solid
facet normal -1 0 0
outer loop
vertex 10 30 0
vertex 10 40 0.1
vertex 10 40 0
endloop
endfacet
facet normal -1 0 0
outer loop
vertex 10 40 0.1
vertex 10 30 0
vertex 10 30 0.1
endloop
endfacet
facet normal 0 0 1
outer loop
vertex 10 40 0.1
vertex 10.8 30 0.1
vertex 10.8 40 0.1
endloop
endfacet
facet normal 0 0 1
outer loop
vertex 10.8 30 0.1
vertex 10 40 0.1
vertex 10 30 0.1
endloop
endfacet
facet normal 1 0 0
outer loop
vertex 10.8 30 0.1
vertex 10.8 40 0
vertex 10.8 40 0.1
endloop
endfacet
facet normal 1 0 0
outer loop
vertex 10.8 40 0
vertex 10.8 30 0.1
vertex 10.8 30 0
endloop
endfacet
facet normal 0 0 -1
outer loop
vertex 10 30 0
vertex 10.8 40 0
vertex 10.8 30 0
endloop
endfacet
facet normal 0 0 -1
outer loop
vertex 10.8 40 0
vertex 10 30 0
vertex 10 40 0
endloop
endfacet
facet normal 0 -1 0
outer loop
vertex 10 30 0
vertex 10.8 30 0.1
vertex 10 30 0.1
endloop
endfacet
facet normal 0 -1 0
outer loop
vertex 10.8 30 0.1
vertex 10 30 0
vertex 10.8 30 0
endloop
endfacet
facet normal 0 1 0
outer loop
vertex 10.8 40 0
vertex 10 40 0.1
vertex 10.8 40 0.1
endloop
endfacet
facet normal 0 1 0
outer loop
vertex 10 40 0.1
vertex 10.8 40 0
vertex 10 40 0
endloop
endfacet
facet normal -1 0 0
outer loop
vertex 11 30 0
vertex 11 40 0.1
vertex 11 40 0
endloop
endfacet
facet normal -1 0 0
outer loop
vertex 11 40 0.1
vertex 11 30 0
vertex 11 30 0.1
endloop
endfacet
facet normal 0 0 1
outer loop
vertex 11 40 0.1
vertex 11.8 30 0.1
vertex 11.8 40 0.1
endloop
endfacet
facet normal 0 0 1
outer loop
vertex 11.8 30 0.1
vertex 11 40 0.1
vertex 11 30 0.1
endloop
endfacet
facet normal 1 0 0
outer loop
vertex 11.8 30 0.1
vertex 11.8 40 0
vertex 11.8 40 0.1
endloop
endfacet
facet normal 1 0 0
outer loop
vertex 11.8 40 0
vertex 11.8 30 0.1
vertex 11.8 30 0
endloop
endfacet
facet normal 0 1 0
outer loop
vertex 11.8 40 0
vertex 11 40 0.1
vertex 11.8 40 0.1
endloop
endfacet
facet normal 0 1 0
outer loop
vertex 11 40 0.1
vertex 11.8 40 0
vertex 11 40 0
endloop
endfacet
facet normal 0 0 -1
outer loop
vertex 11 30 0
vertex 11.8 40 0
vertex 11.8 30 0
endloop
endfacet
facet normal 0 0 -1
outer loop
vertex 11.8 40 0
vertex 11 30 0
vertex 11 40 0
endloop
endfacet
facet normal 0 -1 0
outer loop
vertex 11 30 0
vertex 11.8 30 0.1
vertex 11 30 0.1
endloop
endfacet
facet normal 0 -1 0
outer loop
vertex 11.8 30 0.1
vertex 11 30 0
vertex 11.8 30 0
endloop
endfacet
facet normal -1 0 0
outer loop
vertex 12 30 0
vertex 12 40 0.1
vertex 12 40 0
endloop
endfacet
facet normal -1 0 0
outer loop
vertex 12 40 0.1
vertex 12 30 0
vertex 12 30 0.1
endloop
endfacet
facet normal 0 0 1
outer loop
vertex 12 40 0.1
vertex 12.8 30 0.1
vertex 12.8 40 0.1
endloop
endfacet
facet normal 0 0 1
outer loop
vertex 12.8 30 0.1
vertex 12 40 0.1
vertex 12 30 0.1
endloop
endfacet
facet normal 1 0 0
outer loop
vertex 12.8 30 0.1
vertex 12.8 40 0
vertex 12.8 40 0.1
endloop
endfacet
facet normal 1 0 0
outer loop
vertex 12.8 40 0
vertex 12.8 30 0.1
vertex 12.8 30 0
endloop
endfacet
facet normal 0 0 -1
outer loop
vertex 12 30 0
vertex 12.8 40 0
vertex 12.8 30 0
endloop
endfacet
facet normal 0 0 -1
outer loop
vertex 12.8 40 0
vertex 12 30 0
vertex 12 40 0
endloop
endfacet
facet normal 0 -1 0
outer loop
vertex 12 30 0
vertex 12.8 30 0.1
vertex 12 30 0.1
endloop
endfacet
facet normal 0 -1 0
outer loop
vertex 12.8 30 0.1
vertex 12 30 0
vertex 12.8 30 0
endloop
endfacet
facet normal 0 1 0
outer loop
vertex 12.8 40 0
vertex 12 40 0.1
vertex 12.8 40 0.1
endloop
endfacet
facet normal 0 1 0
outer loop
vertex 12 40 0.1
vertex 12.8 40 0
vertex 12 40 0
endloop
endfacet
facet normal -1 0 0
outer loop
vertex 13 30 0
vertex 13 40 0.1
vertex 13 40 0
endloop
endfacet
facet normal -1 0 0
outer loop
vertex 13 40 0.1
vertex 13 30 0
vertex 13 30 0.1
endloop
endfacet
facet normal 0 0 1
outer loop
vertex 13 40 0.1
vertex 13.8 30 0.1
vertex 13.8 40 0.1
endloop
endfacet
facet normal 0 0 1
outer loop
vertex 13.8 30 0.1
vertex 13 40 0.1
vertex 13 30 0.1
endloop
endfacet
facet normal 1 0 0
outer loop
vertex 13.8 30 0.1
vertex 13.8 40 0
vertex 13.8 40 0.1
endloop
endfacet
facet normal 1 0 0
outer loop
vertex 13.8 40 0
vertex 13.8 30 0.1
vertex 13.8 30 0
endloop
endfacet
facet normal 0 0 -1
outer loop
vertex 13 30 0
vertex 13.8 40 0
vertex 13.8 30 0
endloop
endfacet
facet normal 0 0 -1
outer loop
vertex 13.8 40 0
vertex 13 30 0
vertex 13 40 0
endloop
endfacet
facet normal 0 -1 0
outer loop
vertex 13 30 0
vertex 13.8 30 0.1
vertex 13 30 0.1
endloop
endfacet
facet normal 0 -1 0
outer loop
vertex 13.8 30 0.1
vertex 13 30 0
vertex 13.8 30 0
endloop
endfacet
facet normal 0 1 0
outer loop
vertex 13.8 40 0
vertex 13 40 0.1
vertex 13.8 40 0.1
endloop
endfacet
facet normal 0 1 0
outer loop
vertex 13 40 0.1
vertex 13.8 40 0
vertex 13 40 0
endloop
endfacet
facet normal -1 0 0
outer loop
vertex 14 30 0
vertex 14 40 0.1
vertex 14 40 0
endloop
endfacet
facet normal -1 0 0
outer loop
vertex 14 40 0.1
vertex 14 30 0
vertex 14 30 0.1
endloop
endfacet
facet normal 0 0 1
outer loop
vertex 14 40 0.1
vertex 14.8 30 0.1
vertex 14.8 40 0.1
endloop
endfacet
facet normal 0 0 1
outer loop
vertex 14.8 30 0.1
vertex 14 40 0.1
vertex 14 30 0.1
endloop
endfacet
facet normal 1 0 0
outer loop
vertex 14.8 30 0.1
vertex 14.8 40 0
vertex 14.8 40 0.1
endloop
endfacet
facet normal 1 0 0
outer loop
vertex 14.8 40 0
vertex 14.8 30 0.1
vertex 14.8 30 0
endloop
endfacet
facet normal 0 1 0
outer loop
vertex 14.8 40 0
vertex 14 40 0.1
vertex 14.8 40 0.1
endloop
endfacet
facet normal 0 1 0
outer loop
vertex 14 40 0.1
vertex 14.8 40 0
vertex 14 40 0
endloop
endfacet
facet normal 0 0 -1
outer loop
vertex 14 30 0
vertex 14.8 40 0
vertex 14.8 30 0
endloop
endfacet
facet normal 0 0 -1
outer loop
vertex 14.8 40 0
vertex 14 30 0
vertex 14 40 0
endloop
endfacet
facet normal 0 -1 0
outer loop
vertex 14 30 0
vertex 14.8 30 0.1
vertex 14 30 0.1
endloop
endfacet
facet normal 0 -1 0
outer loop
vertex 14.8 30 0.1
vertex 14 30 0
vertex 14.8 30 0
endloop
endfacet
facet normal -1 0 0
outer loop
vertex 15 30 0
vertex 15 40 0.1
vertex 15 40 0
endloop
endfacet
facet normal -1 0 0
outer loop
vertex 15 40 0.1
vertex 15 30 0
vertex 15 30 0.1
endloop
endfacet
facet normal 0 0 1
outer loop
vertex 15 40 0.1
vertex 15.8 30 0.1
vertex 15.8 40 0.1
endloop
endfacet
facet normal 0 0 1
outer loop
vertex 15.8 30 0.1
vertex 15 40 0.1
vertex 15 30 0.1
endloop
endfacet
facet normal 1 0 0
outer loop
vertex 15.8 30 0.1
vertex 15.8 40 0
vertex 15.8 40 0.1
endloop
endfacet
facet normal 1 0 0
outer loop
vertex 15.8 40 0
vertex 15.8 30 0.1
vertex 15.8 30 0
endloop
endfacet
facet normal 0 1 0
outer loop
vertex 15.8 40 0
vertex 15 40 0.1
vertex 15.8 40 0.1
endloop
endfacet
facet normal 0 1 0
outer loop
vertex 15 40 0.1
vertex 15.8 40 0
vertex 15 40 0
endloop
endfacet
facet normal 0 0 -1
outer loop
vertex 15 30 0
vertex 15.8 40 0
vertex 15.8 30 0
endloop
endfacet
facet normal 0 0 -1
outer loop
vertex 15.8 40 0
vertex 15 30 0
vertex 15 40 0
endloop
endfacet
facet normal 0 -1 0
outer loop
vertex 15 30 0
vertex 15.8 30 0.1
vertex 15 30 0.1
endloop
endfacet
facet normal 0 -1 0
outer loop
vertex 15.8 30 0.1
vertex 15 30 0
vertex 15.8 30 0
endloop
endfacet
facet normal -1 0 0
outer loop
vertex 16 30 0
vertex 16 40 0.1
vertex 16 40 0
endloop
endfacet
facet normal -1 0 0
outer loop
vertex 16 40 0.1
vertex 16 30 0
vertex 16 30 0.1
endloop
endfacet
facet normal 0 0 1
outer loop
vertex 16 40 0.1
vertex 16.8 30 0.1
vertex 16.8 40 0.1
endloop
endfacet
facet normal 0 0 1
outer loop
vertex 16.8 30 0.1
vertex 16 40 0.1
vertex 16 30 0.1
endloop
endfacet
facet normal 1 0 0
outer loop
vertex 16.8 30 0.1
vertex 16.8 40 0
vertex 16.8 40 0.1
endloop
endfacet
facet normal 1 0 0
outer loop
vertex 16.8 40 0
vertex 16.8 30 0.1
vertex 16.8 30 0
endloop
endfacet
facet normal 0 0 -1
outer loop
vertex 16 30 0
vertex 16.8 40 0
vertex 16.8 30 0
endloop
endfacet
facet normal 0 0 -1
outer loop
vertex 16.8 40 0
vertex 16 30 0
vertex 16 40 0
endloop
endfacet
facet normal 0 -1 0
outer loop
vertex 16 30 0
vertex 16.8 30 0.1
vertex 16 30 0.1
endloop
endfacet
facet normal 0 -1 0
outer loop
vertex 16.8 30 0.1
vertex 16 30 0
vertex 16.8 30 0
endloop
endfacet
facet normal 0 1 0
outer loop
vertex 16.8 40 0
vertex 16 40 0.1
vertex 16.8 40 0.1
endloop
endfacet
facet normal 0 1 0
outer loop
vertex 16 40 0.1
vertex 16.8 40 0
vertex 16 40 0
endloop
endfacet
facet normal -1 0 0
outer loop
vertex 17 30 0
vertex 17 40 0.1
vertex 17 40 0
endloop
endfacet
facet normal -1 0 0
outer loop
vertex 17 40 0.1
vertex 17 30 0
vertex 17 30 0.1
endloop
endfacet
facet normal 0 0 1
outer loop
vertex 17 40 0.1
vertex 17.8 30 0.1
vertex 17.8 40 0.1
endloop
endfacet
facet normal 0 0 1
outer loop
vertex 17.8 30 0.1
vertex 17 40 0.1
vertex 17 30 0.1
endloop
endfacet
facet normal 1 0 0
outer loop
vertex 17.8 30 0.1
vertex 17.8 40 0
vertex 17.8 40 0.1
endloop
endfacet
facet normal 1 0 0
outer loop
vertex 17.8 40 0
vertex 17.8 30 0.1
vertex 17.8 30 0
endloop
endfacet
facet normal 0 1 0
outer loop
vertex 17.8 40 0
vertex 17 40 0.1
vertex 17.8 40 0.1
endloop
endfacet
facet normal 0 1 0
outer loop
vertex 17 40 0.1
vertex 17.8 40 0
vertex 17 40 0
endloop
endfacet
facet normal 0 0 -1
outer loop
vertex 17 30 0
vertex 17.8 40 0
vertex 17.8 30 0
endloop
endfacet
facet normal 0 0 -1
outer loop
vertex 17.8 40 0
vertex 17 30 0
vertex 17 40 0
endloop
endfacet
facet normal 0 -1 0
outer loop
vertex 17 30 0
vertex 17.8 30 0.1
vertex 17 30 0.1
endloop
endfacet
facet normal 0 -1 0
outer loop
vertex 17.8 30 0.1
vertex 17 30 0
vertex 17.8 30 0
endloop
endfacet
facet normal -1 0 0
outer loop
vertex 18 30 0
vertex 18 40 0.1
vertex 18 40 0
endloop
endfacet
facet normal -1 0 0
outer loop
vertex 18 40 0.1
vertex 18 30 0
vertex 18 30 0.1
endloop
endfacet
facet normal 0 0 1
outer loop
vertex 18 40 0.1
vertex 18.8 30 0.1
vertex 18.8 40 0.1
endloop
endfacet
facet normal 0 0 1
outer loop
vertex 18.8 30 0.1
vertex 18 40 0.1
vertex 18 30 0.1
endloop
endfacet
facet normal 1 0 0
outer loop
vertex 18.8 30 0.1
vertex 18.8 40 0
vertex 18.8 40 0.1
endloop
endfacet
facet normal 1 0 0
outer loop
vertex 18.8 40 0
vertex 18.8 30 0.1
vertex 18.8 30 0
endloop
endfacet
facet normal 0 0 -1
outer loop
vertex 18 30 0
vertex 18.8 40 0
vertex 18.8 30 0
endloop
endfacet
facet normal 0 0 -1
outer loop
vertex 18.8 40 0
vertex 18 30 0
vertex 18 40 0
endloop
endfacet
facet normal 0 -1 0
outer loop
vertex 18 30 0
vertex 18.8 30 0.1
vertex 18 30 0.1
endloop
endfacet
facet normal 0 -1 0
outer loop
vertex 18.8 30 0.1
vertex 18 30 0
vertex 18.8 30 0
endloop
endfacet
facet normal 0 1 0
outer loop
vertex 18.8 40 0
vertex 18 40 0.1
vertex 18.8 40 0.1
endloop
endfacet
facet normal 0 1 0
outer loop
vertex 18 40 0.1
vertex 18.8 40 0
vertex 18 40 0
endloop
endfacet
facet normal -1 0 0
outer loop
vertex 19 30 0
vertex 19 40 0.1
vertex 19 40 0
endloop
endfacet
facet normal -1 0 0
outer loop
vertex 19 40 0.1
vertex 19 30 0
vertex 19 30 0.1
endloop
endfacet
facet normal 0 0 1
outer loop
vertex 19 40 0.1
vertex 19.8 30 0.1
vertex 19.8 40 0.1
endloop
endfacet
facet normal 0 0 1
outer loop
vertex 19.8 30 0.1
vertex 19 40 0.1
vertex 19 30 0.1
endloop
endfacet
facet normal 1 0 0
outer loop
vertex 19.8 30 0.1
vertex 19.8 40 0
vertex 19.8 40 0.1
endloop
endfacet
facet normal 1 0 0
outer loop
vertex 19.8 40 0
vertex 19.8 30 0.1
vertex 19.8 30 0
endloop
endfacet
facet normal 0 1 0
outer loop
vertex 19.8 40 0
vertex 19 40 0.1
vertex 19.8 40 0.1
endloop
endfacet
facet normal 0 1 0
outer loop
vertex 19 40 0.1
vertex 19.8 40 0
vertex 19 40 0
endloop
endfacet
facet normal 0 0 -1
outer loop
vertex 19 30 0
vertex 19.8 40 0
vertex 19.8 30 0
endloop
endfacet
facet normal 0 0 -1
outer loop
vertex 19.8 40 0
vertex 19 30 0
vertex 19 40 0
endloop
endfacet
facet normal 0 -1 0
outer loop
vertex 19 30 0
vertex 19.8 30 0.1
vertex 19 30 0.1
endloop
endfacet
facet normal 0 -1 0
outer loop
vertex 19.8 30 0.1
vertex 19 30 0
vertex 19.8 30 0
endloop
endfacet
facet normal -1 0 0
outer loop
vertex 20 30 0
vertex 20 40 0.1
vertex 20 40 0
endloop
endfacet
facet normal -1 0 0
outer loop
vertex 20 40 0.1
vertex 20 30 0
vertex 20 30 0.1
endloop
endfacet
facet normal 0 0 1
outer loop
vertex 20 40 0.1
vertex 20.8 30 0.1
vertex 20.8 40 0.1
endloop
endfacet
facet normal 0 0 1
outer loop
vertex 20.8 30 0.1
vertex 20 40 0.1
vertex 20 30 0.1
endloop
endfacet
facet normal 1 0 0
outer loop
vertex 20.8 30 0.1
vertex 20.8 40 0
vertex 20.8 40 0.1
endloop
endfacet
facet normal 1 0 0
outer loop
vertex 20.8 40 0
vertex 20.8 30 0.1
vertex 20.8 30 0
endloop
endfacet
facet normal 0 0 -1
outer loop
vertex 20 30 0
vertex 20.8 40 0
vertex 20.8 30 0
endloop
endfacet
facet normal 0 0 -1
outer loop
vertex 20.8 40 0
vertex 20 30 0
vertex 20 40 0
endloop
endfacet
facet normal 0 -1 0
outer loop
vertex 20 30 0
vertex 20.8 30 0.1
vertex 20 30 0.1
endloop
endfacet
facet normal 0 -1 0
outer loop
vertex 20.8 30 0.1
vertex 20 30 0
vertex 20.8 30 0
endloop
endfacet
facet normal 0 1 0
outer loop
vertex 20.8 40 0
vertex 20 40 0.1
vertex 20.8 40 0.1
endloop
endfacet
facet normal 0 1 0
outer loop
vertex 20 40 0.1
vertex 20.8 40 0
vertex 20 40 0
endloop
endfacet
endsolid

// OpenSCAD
translate([10+0,10+20,0])
        for (i = [0 : 10]){
            translate([i,0,0])
                cube(size = [0.8,10,0.1]);
    }
